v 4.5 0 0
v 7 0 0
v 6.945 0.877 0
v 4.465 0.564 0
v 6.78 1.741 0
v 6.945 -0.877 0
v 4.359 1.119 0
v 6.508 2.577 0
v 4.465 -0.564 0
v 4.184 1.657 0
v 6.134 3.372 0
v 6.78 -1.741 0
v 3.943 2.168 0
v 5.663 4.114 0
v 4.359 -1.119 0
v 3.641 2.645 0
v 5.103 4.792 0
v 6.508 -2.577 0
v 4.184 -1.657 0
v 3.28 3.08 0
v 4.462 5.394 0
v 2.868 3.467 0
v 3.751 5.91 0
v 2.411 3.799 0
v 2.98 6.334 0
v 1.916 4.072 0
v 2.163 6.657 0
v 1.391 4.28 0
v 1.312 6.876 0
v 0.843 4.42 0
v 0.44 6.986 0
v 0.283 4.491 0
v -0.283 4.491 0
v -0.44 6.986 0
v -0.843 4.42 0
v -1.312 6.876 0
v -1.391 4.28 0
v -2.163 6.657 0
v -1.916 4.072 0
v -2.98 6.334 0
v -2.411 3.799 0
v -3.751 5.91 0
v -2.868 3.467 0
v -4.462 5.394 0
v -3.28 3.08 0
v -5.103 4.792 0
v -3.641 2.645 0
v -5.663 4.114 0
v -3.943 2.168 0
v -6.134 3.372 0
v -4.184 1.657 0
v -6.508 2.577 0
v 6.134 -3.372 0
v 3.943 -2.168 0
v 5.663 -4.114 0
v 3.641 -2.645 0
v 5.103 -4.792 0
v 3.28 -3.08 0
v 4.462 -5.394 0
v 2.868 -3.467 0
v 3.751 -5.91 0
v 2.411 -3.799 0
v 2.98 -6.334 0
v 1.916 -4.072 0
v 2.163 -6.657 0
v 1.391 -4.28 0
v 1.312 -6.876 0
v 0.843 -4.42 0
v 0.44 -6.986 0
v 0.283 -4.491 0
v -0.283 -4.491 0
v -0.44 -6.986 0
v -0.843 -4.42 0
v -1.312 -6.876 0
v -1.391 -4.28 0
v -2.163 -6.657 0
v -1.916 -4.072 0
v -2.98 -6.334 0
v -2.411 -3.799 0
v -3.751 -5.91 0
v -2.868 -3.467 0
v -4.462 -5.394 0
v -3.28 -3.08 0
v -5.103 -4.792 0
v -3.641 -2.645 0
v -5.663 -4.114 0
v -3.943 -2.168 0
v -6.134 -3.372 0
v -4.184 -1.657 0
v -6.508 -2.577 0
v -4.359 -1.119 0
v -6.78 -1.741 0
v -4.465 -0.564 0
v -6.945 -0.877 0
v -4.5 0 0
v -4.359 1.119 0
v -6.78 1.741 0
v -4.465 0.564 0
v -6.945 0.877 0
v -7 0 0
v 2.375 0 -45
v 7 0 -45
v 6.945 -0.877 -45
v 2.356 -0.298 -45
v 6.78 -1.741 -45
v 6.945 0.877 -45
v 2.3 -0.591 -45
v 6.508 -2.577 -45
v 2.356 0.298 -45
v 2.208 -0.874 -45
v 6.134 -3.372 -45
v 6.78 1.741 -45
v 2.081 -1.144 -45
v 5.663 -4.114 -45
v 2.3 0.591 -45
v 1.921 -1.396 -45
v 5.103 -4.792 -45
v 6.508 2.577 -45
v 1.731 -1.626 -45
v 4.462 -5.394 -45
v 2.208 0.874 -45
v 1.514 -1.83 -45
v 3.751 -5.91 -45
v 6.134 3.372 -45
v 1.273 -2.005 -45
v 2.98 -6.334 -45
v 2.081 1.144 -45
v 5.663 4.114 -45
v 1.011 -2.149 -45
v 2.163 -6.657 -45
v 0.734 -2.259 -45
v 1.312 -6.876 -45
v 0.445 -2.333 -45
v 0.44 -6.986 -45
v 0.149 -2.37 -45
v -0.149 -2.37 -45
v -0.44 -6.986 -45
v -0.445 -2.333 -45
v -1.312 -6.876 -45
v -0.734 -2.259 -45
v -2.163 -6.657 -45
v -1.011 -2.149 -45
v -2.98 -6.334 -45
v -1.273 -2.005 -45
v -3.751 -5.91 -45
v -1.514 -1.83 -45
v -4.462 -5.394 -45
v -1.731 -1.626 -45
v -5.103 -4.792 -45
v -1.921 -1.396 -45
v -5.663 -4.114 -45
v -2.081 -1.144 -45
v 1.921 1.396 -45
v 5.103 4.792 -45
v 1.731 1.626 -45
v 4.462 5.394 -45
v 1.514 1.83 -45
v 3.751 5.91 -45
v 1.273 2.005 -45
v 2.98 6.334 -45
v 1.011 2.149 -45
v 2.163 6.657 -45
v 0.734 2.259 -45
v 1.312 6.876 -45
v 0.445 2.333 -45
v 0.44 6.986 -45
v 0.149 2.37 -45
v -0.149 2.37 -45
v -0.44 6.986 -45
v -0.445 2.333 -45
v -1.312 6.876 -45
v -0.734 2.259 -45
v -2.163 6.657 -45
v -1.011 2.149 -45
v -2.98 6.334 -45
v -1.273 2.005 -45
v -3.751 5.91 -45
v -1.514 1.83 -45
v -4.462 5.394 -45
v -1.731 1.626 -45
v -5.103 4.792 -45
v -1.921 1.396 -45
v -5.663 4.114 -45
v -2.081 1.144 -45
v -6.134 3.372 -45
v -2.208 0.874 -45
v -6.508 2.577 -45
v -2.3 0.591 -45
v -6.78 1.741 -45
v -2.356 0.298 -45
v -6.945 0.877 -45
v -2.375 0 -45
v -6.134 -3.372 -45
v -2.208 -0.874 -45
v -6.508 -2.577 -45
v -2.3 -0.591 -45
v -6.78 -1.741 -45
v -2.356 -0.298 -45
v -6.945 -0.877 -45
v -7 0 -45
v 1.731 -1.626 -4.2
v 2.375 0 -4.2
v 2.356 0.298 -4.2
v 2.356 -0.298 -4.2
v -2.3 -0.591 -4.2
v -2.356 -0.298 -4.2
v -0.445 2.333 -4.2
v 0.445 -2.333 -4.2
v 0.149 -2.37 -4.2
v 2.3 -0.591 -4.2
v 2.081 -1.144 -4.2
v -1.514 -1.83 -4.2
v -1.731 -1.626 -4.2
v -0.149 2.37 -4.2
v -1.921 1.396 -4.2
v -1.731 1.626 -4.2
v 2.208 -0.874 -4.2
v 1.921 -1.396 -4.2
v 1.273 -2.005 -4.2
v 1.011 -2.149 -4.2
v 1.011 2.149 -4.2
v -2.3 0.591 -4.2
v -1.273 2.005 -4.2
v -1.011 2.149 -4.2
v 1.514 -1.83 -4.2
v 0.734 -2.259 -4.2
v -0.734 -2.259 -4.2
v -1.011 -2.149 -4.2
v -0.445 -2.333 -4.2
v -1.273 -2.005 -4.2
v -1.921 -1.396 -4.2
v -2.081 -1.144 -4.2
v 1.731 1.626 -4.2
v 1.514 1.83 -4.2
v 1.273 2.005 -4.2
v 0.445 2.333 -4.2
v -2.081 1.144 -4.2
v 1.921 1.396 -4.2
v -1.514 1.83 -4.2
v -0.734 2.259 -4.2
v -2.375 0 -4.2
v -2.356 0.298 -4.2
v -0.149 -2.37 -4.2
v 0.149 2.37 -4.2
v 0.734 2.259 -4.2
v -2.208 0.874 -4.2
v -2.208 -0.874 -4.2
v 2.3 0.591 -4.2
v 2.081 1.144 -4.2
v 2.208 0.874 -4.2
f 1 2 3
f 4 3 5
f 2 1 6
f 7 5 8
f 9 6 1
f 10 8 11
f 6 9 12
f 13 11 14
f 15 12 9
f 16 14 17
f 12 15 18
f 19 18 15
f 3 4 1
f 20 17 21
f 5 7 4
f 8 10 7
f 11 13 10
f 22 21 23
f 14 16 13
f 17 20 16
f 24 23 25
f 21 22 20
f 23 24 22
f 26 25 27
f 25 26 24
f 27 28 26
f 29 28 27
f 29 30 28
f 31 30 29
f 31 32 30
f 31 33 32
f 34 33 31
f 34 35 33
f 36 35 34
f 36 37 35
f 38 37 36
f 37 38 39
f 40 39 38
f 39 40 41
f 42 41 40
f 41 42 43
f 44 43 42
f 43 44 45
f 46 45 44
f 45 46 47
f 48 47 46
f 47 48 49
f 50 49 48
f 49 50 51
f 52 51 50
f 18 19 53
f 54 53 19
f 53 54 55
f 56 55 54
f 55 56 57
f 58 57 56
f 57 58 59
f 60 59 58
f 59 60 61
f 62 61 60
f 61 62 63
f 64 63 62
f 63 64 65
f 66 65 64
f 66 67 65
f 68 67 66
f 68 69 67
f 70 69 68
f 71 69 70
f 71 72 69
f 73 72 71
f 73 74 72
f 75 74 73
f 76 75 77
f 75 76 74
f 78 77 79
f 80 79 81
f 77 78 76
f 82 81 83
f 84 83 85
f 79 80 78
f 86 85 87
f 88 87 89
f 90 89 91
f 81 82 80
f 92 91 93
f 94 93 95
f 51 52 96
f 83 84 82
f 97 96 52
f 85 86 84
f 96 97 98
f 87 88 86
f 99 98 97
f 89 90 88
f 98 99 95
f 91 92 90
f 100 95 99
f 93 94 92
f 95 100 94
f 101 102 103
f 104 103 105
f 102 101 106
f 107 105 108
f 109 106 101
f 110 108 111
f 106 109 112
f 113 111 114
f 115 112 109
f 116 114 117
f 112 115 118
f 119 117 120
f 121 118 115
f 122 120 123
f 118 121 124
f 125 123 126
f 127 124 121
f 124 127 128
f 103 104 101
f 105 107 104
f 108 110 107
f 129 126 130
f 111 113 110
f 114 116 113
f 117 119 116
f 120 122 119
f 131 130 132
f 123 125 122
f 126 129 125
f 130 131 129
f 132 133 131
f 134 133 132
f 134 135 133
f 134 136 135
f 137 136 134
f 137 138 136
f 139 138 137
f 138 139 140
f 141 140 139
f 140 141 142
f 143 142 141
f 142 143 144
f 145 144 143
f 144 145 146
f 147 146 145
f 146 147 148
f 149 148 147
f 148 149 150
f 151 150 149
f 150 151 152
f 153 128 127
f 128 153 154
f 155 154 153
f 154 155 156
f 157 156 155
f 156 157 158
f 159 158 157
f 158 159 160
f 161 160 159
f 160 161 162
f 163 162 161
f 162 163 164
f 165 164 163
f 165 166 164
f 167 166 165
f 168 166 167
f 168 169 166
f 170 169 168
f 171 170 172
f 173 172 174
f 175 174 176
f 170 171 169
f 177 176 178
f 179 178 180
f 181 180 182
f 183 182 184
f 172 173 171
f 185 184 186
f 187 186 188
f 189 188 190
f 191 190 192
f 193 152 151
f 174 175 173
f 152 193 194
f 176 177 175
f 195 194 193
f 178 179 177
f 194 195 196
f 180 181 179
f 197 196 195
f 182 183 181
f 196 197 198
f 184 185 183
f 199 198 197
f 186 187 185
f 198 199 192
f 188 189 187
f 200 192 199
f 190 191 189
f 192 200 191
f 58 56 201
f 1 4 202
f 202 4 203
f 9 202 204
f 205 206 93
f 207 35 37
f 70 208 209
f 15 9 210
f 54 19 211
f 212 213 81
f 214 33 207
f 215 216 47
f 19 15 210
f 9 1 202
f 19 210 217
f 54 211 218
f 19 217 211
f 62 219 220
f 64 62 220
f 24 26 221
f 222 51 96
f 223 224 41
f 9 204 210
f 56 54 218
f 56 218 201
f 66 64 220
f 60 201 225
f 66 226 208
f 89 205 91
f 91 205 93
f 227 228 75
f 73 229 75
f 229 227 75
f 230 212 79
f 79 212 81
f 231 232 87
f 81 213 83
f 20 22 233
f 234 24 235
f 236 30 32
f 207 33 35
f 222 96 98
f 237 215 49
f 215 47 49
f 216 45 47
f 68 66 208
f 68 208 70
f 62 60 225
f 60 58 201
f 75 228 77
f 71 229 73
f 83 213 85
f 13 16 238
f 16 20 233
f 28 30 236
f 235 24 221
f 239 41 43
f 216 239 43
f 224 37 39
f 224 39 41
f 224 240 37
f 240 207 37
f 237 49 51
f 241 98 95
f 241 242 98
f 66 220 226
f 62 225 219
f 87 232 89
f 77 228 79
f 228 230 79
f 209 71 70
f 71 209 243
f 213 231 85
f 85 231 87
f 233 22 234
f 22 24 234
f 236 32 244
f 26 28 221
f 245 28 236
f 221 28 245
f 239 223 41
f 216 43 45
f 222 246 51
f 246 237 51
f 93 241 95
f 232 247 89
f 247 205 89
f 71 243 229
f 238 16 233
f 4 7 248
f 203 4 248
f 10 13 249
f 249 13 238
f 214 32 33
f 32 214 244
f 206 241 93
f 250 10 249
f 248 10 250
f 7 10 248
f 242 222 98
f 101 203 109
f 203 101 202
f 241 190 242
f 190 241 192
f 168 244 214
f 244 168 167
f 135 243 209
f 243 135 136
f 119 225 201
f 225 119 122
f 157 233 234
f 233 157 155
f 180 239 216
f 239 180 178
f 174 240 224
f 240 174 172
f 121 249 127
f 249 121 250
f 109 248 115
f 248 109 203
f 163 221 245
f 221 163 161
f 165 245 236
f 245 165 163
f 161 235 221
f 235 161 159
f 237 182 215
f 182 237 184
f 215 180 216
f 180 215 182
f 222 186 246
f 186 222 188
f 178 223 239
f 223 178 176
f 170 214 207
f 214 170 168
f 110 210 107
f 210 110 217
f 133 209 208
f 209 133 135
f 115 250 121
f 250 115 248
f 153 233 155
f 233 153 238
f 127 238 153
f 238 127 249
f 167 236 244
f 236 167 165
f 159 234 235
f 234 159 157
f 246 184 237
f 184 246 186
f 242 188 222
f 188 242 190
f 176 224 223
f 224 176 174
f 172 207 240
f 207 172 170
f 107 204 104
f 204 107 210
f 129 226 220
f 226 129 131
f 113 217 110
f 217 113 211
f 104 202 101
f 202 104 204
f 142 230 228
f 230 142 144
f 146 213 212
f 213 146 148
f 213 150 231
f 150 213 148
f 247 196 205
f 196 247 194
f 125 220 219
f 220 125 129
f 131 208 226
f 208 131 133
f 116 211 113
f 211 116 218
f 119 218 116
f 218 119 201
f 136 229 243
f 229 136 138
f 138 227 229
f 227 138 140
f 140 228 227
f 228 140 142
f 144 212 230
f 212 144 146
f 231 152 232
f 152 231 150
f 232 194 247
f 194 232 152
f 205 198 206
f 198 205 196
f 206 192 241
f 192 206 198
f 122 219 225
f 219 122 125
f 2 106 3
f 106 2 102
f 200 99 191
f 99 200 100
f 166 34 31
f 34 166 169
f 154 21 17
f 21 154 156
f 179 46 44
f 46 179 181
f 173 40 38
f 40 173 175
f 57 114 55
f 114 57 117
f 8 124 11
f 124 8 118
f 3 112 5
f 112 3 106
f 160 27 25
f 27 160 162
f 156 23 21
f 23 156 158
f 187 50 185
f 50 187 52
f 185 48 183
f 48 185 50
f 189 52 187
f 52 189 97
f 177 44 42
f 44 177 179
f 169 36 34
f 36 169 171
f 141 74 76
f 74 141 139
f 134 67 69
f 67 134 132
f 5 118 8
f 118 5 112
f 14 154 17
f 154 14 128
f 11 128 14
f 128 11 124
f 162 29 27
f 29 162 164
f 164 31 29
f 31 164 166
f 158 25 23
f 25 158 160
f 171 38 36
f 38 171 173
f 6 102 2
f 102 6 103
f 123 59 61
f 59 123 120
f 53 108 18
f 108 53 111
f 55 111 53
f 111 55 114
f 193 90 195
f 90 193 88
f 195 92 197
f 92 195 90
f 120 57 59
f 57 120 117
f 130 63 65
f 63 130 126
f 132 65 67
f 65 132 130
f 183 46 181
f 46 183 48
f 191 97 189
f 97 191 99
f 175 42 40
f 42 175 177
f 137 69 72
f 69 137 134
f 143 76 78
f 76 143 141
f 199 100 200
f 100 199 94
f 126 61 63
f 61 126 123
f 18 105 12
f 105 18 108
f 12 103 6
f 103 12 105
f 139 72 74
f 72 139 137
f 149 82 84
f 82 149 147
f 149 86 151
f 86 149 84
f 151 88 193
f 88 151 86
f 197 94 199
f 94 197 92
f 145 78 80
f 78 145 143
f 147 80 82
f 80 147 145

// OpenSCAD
$fn = 50;


difference() {
	union() {
		translate(v = [0, 0, -45.0000000000]) {
			cylinder(h = 45, r = 7.0000000000);
		}
		cylinder(h = 0, r = 16.0000000000);
	}
	union() {
		translate(v = [0, 0, 0]) {
			rotate(a = [0, 0, 0]) {
				difference() {
					union() {
						#translate(v = [0, 0, -45.0000000000]) {
							cylinder(h = 45, r = 2.2500000000);
						}
						#translate(v = [0, 0, -4.2000000000]) {
							cylinder(h = 4.2000000000, r = 7.0000000000, r1 = 2.3750000000, r2 = 4.5000000000);
						}
						#translate(v = [0, 0, -45.0000000000]) {
							cylinder(h = 45, r = 2.3750000000);
						}
						#translate(v = [0, 0, -45.0000000000]) {
							cylinder(h = 45, r = 2.2500000000);
						}
					}
					union();
				}
			}
		}
	}
}
